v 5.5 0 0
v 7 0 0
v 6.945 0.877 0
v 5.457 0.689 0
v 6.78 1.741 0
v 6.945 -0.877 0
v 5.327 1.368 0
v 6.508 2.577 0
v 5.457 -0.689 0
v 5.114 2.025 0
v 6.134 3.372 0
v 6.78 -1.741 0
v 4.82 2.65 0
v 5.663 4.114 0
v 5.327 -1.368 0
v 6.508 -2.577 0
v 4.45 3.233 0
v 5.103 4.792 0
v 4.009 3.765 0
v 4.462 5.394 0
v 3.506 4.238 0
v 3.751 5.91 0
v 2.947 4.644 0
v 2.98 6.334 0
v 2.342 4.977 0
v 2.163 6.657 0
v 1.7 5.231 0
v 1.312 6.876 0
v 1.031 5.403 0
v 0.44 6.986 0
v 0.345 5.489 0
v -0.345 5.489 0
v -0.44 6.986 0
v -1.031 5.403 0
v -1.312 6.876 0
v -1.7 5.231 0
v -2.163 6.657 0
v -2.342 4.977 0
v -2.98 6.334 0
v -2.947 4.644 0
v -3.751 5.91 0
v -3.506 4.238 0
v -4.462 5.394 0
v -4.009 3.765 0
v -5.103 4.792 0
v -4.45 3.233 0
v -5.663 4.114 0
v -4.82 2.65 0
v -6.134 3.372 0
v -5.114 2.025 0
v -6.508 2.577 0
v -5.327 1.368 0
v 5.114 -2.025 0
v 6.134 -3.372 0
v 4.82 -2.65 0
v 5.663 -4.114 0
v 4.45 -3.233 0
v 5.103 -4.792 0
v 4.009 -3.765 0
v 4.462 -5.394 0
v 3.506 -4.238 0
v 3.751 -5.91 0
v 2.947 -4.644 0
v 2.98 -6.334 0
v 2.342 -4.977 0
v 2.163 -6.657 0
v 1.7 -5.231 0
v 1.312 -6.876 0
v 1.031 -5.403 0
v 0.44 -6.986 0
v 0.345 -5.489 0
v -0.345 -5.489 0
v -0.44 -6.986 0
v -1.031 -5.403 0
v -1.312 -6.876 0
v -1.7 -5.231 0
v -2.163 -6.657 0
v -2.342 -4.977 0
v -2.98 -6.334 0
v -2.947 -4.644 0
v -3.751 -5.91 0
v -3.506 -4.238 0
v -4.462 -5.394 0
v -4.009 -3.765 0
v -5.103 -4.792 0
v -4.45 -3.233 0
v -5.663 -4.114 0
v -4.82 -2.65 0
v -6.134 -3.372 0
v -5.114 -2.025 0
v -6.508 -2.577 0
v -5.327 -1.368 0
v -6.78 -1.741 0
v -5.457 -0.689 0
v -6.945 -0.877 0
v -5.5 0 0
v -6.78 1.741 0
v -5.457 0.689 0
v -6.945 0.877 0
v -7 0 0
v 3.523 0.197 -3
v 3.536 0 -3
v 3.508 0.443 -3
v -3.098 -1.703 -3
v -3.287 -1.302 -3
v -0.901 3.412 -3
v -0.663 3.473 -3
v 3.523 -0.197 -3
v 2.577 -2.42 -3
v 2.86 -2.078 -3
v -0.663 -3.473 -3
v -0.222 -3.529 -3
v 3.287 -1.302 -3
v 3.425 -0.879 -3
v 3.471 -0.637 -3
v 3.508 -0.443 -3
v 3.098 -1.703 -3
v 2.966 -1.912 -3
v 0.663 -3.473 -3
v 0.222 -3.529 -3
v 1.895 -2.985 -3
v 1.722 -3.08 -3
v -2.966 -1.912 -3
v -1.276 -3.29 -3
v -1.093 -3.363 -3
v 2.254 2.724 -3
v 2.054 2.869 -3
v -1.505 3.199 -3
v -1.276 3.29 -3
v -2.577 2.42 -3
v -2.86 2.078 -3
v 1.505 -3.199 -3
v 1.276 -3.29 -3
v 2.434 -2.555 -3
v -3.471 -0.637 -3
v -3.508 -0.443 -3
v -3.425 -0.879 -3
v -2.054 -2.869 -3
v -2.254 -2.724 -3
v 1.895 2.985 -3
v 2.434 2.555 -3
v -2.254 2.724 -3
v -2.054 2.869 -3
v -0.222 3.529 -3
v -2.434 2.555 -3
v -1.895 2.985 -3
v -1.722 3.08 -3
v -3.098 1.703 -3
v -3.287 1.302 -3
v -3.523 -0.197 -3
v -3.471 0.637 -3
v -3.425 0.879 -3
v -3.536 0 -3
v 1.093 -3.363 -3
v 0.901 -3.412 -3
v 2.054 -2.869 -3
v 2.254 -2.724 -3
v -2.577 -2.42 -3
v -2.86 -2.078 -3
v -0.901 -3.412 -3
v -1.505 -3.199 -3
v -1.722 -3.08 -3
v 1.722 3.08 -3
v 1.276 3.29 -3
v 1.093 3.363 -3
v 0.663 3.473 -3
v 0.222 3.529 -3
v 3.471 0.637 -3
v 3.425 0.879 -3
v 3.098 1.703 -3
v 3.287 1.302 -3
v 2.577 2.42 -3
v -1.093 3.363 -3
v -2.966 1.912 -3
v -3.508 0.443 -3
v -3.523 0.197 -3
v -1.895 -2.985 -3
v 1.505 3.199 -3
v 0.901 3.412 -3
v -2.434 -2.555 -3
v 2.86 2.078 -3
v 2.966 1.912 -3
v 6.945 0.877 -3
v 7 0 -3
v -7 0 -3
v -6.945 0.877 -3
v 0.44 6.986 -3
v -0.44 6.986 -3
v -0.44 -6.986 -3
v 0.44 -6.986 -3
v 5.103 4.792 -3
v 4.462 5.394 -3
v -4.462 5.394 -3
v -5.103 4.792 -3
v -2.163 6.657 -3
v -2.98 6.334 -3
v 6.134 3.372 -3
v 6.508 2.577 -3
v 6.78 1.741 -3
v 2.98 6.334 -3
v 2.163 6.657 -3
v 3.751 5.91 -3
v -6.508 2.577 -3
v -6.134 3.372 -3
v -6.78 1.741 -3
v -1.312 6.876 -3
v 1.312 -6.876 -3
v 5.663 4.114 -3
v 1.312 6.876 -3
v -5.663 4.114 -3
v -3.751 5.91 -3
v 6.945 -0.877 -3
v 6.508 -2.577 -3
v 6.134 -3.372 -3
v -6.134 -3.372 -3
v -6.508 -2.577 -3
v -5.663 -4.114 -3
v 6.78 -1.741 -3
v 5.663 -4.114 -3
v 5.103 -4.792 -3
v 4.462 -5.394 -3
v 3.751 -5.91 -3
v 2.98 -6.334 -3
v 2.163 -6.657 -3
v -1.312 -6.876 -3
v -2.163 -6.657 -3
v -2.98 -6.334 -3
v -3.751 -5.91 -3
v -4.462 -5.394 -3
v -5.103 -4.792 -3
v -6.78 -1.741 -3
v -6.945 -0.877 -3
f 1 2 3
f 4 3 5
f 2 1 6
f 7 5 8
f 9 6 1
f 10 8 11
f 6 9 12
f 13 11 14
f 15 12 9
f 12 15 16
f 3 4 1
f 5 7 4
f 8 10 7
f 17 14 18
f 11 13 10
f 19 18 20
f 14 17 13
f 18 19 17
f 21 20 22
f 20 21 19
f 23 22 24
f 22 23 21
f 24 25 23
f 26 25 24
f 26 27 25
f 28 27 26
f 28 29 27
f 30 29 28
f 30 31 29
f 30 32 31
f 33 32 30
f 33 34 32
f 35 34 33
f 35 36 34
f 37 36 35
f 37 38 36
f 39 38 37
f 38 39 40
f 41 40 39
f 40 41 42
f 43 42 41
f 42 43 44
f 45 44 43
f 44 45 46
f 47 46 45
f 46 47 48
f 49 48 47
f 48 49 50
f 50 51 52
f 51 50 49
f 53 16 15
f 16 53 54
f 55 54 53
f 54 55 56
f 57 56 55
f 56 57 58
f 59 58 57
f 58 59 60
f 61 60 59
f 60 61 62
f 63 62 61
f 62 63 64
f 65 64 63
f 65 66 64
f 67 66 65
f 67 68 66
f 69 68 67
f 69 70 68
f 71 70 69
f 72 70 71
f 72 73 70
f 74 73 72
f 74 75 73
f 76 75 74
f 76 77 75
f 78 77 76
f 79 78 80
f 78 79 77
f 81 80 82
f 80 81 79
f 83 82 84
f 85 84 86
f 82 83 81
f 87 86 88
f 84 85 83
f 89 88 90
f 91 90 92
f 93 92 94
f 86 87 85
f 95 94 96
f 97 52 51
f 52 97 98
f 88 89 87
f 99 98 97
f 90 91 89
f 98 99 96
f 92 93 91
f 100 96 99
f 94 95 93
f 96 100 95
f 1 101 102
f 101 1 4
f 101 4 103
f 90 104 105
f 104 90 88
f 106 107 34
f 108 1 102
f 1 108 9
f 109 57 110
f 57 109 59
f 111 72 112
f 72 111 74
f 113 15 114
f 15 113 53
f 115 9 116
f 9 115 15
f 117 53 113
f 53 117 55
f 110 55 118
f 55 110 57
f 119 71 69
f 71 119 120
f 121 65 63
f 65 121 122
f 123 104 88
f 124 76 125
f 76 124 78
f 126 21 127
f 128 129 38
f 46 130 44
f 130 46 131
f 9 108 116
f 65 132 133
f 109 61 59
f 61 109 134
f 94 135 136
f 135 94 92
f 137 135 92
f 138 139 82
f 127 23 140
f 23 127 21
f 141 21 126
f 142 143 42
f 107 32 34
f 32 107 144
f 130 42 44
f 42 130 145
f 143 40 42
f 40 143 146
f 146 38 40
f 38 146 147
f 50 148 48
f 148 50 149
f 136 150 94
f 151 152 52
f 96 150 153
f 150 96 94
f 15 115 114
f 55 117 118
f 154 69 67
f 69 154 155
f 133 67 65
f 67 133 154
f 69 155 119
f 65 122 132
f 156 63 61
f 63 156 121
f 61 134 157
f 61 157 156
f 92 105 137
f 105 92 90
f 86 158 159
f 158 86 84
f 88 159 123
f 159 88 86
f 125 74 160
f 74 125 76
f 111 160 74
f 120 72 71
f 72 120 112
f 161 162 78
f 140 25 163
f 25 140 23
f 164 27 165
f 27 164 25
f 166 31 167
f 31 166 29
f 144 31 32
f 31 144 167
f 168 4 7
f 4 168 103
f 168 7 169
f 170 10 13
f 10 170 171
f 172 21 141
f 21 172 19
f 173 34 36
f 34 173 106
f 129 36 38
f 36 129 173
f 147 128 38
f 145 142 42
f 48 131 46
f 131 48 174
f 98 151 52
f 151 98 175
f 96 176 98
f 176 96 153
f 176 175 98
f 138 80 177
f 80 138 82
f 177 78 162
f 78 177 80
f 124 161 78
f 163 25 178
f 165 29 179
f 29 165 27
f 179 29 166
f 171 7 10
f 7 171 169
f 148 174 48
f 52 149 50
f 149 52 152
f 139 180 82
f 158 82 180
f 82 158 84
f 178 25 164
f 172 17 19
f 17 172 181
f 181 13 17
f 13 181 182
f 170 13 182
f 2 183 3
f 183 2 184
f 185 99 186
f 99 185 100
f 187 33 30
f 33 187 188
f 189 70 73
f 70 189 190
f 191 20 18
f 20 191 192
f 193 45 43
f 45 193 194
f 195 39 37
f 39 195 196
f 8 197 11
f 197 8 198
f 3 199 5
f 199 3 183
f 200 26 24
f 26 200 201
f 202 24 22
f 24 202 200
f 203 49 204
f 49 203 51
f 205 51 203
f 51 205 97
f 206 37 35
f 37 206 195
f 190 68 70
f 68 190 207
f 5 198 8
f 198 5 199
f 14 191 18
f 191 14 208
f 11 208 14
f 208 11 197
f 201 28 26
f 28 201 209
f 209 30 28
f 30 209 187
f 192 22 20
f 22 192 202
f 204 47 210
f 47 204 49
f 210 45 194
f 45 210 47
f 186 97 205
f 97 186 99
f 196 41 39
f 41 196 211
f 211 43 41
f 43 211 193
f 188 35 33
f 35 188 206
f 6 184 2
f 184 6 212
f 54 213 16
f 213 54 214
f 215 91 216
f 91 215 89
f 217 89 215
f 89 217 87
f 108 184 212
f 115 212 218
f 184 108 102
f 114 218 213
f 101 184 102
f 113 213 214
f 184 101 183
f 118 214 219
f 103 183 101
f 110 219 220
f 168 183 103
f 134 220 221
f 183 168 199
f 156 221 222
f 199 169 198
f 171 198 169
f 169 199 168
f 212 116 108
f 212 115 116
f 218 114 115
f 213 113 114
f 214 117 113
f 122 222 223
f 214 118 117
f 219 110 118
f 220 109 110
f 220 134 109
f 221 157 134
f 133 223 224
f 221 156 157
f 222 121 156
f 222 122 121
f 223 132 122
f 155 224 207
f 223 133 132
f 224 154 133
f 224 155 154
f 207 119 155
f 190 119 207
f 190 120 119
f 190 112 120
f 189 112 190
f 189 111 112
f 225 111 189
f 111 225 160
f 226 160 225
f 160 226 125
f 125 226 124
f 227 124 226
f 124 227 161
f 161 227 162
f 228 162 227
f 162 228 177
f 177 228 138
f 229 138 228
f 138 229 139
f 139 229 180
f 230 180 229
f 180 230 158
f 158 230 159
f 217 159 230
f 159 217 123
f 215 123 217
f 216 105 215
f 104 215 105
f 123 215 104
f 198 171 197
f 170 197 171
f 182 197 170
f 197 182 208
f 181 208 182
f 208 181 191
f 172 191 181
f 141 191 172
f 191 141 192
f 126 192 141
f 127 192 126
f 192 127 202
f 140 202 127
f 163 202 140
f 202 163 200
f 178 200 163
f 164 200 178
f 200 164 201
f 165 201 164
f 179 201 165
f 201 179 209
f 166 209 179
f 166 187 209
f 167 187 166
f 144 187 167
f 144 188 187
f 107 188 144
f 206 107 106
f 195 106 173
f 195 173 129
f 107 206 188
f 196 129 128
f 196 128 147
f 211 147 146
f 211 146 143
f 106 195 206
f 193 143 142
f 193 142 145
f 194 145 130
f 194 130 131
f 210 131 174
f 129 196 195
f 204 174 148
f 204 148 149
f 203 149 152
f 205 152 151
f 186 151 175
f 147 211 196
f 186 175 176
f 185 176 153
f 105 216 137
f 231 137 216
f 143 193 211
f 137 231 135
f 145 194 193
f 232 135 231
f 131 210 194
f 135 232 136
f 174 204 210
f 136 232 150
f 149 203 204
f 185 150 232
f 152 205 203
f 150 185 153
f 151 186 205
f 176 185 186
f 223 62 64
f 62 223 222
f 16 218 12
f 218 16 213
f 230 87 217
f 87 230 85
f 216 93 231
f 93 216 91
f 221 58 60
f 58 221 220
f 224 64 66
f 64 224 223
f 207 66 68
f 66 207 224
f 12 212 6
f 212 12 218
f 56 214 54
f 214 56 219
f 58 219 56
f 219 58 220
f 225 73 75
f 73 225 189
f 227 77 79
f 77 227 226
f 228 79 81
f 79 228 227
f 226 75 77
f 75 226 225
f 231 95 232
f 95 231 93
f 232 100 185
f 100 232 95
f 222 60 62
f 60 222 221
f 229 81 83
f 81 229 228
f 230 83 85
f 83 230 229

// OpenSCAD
$fn = 50;


difference() {
	union() {
		translate(v = [0, 0, -3.0000000000]) {
			cylinder(h = 3, r = 7.0000000000);
		}
		cylinder(h = 0, r = 16.0000000000);
	}
	union() {
		translate(v = [0, 0, 0]) {
			rotate(a = [0, 0, 0]) {
				difference() {
					union() {
						#translate(v = [0, 0, -3.0000000000]) {
							cylinder(h = 3, r = 2.2500000000);
						}
						#translate(v = [0, 0, -4.2000000000]) {
							cylinder(h = 4.2000000000, r = 7.0000000000, r1 = 2.7500000000, r2 = 5.5000000000);
						}
						#translate(v = [0, 0, -3.0000000000]) {
							cylinder(h = 3, r = 2.7500000000);
						}
						#translate(v = [0, 0, -3.0000000000]) {
							cylinder(h = 3, r = 2.2500000000);
						}
					}
					union();
				}
			}
		}
	}
}
